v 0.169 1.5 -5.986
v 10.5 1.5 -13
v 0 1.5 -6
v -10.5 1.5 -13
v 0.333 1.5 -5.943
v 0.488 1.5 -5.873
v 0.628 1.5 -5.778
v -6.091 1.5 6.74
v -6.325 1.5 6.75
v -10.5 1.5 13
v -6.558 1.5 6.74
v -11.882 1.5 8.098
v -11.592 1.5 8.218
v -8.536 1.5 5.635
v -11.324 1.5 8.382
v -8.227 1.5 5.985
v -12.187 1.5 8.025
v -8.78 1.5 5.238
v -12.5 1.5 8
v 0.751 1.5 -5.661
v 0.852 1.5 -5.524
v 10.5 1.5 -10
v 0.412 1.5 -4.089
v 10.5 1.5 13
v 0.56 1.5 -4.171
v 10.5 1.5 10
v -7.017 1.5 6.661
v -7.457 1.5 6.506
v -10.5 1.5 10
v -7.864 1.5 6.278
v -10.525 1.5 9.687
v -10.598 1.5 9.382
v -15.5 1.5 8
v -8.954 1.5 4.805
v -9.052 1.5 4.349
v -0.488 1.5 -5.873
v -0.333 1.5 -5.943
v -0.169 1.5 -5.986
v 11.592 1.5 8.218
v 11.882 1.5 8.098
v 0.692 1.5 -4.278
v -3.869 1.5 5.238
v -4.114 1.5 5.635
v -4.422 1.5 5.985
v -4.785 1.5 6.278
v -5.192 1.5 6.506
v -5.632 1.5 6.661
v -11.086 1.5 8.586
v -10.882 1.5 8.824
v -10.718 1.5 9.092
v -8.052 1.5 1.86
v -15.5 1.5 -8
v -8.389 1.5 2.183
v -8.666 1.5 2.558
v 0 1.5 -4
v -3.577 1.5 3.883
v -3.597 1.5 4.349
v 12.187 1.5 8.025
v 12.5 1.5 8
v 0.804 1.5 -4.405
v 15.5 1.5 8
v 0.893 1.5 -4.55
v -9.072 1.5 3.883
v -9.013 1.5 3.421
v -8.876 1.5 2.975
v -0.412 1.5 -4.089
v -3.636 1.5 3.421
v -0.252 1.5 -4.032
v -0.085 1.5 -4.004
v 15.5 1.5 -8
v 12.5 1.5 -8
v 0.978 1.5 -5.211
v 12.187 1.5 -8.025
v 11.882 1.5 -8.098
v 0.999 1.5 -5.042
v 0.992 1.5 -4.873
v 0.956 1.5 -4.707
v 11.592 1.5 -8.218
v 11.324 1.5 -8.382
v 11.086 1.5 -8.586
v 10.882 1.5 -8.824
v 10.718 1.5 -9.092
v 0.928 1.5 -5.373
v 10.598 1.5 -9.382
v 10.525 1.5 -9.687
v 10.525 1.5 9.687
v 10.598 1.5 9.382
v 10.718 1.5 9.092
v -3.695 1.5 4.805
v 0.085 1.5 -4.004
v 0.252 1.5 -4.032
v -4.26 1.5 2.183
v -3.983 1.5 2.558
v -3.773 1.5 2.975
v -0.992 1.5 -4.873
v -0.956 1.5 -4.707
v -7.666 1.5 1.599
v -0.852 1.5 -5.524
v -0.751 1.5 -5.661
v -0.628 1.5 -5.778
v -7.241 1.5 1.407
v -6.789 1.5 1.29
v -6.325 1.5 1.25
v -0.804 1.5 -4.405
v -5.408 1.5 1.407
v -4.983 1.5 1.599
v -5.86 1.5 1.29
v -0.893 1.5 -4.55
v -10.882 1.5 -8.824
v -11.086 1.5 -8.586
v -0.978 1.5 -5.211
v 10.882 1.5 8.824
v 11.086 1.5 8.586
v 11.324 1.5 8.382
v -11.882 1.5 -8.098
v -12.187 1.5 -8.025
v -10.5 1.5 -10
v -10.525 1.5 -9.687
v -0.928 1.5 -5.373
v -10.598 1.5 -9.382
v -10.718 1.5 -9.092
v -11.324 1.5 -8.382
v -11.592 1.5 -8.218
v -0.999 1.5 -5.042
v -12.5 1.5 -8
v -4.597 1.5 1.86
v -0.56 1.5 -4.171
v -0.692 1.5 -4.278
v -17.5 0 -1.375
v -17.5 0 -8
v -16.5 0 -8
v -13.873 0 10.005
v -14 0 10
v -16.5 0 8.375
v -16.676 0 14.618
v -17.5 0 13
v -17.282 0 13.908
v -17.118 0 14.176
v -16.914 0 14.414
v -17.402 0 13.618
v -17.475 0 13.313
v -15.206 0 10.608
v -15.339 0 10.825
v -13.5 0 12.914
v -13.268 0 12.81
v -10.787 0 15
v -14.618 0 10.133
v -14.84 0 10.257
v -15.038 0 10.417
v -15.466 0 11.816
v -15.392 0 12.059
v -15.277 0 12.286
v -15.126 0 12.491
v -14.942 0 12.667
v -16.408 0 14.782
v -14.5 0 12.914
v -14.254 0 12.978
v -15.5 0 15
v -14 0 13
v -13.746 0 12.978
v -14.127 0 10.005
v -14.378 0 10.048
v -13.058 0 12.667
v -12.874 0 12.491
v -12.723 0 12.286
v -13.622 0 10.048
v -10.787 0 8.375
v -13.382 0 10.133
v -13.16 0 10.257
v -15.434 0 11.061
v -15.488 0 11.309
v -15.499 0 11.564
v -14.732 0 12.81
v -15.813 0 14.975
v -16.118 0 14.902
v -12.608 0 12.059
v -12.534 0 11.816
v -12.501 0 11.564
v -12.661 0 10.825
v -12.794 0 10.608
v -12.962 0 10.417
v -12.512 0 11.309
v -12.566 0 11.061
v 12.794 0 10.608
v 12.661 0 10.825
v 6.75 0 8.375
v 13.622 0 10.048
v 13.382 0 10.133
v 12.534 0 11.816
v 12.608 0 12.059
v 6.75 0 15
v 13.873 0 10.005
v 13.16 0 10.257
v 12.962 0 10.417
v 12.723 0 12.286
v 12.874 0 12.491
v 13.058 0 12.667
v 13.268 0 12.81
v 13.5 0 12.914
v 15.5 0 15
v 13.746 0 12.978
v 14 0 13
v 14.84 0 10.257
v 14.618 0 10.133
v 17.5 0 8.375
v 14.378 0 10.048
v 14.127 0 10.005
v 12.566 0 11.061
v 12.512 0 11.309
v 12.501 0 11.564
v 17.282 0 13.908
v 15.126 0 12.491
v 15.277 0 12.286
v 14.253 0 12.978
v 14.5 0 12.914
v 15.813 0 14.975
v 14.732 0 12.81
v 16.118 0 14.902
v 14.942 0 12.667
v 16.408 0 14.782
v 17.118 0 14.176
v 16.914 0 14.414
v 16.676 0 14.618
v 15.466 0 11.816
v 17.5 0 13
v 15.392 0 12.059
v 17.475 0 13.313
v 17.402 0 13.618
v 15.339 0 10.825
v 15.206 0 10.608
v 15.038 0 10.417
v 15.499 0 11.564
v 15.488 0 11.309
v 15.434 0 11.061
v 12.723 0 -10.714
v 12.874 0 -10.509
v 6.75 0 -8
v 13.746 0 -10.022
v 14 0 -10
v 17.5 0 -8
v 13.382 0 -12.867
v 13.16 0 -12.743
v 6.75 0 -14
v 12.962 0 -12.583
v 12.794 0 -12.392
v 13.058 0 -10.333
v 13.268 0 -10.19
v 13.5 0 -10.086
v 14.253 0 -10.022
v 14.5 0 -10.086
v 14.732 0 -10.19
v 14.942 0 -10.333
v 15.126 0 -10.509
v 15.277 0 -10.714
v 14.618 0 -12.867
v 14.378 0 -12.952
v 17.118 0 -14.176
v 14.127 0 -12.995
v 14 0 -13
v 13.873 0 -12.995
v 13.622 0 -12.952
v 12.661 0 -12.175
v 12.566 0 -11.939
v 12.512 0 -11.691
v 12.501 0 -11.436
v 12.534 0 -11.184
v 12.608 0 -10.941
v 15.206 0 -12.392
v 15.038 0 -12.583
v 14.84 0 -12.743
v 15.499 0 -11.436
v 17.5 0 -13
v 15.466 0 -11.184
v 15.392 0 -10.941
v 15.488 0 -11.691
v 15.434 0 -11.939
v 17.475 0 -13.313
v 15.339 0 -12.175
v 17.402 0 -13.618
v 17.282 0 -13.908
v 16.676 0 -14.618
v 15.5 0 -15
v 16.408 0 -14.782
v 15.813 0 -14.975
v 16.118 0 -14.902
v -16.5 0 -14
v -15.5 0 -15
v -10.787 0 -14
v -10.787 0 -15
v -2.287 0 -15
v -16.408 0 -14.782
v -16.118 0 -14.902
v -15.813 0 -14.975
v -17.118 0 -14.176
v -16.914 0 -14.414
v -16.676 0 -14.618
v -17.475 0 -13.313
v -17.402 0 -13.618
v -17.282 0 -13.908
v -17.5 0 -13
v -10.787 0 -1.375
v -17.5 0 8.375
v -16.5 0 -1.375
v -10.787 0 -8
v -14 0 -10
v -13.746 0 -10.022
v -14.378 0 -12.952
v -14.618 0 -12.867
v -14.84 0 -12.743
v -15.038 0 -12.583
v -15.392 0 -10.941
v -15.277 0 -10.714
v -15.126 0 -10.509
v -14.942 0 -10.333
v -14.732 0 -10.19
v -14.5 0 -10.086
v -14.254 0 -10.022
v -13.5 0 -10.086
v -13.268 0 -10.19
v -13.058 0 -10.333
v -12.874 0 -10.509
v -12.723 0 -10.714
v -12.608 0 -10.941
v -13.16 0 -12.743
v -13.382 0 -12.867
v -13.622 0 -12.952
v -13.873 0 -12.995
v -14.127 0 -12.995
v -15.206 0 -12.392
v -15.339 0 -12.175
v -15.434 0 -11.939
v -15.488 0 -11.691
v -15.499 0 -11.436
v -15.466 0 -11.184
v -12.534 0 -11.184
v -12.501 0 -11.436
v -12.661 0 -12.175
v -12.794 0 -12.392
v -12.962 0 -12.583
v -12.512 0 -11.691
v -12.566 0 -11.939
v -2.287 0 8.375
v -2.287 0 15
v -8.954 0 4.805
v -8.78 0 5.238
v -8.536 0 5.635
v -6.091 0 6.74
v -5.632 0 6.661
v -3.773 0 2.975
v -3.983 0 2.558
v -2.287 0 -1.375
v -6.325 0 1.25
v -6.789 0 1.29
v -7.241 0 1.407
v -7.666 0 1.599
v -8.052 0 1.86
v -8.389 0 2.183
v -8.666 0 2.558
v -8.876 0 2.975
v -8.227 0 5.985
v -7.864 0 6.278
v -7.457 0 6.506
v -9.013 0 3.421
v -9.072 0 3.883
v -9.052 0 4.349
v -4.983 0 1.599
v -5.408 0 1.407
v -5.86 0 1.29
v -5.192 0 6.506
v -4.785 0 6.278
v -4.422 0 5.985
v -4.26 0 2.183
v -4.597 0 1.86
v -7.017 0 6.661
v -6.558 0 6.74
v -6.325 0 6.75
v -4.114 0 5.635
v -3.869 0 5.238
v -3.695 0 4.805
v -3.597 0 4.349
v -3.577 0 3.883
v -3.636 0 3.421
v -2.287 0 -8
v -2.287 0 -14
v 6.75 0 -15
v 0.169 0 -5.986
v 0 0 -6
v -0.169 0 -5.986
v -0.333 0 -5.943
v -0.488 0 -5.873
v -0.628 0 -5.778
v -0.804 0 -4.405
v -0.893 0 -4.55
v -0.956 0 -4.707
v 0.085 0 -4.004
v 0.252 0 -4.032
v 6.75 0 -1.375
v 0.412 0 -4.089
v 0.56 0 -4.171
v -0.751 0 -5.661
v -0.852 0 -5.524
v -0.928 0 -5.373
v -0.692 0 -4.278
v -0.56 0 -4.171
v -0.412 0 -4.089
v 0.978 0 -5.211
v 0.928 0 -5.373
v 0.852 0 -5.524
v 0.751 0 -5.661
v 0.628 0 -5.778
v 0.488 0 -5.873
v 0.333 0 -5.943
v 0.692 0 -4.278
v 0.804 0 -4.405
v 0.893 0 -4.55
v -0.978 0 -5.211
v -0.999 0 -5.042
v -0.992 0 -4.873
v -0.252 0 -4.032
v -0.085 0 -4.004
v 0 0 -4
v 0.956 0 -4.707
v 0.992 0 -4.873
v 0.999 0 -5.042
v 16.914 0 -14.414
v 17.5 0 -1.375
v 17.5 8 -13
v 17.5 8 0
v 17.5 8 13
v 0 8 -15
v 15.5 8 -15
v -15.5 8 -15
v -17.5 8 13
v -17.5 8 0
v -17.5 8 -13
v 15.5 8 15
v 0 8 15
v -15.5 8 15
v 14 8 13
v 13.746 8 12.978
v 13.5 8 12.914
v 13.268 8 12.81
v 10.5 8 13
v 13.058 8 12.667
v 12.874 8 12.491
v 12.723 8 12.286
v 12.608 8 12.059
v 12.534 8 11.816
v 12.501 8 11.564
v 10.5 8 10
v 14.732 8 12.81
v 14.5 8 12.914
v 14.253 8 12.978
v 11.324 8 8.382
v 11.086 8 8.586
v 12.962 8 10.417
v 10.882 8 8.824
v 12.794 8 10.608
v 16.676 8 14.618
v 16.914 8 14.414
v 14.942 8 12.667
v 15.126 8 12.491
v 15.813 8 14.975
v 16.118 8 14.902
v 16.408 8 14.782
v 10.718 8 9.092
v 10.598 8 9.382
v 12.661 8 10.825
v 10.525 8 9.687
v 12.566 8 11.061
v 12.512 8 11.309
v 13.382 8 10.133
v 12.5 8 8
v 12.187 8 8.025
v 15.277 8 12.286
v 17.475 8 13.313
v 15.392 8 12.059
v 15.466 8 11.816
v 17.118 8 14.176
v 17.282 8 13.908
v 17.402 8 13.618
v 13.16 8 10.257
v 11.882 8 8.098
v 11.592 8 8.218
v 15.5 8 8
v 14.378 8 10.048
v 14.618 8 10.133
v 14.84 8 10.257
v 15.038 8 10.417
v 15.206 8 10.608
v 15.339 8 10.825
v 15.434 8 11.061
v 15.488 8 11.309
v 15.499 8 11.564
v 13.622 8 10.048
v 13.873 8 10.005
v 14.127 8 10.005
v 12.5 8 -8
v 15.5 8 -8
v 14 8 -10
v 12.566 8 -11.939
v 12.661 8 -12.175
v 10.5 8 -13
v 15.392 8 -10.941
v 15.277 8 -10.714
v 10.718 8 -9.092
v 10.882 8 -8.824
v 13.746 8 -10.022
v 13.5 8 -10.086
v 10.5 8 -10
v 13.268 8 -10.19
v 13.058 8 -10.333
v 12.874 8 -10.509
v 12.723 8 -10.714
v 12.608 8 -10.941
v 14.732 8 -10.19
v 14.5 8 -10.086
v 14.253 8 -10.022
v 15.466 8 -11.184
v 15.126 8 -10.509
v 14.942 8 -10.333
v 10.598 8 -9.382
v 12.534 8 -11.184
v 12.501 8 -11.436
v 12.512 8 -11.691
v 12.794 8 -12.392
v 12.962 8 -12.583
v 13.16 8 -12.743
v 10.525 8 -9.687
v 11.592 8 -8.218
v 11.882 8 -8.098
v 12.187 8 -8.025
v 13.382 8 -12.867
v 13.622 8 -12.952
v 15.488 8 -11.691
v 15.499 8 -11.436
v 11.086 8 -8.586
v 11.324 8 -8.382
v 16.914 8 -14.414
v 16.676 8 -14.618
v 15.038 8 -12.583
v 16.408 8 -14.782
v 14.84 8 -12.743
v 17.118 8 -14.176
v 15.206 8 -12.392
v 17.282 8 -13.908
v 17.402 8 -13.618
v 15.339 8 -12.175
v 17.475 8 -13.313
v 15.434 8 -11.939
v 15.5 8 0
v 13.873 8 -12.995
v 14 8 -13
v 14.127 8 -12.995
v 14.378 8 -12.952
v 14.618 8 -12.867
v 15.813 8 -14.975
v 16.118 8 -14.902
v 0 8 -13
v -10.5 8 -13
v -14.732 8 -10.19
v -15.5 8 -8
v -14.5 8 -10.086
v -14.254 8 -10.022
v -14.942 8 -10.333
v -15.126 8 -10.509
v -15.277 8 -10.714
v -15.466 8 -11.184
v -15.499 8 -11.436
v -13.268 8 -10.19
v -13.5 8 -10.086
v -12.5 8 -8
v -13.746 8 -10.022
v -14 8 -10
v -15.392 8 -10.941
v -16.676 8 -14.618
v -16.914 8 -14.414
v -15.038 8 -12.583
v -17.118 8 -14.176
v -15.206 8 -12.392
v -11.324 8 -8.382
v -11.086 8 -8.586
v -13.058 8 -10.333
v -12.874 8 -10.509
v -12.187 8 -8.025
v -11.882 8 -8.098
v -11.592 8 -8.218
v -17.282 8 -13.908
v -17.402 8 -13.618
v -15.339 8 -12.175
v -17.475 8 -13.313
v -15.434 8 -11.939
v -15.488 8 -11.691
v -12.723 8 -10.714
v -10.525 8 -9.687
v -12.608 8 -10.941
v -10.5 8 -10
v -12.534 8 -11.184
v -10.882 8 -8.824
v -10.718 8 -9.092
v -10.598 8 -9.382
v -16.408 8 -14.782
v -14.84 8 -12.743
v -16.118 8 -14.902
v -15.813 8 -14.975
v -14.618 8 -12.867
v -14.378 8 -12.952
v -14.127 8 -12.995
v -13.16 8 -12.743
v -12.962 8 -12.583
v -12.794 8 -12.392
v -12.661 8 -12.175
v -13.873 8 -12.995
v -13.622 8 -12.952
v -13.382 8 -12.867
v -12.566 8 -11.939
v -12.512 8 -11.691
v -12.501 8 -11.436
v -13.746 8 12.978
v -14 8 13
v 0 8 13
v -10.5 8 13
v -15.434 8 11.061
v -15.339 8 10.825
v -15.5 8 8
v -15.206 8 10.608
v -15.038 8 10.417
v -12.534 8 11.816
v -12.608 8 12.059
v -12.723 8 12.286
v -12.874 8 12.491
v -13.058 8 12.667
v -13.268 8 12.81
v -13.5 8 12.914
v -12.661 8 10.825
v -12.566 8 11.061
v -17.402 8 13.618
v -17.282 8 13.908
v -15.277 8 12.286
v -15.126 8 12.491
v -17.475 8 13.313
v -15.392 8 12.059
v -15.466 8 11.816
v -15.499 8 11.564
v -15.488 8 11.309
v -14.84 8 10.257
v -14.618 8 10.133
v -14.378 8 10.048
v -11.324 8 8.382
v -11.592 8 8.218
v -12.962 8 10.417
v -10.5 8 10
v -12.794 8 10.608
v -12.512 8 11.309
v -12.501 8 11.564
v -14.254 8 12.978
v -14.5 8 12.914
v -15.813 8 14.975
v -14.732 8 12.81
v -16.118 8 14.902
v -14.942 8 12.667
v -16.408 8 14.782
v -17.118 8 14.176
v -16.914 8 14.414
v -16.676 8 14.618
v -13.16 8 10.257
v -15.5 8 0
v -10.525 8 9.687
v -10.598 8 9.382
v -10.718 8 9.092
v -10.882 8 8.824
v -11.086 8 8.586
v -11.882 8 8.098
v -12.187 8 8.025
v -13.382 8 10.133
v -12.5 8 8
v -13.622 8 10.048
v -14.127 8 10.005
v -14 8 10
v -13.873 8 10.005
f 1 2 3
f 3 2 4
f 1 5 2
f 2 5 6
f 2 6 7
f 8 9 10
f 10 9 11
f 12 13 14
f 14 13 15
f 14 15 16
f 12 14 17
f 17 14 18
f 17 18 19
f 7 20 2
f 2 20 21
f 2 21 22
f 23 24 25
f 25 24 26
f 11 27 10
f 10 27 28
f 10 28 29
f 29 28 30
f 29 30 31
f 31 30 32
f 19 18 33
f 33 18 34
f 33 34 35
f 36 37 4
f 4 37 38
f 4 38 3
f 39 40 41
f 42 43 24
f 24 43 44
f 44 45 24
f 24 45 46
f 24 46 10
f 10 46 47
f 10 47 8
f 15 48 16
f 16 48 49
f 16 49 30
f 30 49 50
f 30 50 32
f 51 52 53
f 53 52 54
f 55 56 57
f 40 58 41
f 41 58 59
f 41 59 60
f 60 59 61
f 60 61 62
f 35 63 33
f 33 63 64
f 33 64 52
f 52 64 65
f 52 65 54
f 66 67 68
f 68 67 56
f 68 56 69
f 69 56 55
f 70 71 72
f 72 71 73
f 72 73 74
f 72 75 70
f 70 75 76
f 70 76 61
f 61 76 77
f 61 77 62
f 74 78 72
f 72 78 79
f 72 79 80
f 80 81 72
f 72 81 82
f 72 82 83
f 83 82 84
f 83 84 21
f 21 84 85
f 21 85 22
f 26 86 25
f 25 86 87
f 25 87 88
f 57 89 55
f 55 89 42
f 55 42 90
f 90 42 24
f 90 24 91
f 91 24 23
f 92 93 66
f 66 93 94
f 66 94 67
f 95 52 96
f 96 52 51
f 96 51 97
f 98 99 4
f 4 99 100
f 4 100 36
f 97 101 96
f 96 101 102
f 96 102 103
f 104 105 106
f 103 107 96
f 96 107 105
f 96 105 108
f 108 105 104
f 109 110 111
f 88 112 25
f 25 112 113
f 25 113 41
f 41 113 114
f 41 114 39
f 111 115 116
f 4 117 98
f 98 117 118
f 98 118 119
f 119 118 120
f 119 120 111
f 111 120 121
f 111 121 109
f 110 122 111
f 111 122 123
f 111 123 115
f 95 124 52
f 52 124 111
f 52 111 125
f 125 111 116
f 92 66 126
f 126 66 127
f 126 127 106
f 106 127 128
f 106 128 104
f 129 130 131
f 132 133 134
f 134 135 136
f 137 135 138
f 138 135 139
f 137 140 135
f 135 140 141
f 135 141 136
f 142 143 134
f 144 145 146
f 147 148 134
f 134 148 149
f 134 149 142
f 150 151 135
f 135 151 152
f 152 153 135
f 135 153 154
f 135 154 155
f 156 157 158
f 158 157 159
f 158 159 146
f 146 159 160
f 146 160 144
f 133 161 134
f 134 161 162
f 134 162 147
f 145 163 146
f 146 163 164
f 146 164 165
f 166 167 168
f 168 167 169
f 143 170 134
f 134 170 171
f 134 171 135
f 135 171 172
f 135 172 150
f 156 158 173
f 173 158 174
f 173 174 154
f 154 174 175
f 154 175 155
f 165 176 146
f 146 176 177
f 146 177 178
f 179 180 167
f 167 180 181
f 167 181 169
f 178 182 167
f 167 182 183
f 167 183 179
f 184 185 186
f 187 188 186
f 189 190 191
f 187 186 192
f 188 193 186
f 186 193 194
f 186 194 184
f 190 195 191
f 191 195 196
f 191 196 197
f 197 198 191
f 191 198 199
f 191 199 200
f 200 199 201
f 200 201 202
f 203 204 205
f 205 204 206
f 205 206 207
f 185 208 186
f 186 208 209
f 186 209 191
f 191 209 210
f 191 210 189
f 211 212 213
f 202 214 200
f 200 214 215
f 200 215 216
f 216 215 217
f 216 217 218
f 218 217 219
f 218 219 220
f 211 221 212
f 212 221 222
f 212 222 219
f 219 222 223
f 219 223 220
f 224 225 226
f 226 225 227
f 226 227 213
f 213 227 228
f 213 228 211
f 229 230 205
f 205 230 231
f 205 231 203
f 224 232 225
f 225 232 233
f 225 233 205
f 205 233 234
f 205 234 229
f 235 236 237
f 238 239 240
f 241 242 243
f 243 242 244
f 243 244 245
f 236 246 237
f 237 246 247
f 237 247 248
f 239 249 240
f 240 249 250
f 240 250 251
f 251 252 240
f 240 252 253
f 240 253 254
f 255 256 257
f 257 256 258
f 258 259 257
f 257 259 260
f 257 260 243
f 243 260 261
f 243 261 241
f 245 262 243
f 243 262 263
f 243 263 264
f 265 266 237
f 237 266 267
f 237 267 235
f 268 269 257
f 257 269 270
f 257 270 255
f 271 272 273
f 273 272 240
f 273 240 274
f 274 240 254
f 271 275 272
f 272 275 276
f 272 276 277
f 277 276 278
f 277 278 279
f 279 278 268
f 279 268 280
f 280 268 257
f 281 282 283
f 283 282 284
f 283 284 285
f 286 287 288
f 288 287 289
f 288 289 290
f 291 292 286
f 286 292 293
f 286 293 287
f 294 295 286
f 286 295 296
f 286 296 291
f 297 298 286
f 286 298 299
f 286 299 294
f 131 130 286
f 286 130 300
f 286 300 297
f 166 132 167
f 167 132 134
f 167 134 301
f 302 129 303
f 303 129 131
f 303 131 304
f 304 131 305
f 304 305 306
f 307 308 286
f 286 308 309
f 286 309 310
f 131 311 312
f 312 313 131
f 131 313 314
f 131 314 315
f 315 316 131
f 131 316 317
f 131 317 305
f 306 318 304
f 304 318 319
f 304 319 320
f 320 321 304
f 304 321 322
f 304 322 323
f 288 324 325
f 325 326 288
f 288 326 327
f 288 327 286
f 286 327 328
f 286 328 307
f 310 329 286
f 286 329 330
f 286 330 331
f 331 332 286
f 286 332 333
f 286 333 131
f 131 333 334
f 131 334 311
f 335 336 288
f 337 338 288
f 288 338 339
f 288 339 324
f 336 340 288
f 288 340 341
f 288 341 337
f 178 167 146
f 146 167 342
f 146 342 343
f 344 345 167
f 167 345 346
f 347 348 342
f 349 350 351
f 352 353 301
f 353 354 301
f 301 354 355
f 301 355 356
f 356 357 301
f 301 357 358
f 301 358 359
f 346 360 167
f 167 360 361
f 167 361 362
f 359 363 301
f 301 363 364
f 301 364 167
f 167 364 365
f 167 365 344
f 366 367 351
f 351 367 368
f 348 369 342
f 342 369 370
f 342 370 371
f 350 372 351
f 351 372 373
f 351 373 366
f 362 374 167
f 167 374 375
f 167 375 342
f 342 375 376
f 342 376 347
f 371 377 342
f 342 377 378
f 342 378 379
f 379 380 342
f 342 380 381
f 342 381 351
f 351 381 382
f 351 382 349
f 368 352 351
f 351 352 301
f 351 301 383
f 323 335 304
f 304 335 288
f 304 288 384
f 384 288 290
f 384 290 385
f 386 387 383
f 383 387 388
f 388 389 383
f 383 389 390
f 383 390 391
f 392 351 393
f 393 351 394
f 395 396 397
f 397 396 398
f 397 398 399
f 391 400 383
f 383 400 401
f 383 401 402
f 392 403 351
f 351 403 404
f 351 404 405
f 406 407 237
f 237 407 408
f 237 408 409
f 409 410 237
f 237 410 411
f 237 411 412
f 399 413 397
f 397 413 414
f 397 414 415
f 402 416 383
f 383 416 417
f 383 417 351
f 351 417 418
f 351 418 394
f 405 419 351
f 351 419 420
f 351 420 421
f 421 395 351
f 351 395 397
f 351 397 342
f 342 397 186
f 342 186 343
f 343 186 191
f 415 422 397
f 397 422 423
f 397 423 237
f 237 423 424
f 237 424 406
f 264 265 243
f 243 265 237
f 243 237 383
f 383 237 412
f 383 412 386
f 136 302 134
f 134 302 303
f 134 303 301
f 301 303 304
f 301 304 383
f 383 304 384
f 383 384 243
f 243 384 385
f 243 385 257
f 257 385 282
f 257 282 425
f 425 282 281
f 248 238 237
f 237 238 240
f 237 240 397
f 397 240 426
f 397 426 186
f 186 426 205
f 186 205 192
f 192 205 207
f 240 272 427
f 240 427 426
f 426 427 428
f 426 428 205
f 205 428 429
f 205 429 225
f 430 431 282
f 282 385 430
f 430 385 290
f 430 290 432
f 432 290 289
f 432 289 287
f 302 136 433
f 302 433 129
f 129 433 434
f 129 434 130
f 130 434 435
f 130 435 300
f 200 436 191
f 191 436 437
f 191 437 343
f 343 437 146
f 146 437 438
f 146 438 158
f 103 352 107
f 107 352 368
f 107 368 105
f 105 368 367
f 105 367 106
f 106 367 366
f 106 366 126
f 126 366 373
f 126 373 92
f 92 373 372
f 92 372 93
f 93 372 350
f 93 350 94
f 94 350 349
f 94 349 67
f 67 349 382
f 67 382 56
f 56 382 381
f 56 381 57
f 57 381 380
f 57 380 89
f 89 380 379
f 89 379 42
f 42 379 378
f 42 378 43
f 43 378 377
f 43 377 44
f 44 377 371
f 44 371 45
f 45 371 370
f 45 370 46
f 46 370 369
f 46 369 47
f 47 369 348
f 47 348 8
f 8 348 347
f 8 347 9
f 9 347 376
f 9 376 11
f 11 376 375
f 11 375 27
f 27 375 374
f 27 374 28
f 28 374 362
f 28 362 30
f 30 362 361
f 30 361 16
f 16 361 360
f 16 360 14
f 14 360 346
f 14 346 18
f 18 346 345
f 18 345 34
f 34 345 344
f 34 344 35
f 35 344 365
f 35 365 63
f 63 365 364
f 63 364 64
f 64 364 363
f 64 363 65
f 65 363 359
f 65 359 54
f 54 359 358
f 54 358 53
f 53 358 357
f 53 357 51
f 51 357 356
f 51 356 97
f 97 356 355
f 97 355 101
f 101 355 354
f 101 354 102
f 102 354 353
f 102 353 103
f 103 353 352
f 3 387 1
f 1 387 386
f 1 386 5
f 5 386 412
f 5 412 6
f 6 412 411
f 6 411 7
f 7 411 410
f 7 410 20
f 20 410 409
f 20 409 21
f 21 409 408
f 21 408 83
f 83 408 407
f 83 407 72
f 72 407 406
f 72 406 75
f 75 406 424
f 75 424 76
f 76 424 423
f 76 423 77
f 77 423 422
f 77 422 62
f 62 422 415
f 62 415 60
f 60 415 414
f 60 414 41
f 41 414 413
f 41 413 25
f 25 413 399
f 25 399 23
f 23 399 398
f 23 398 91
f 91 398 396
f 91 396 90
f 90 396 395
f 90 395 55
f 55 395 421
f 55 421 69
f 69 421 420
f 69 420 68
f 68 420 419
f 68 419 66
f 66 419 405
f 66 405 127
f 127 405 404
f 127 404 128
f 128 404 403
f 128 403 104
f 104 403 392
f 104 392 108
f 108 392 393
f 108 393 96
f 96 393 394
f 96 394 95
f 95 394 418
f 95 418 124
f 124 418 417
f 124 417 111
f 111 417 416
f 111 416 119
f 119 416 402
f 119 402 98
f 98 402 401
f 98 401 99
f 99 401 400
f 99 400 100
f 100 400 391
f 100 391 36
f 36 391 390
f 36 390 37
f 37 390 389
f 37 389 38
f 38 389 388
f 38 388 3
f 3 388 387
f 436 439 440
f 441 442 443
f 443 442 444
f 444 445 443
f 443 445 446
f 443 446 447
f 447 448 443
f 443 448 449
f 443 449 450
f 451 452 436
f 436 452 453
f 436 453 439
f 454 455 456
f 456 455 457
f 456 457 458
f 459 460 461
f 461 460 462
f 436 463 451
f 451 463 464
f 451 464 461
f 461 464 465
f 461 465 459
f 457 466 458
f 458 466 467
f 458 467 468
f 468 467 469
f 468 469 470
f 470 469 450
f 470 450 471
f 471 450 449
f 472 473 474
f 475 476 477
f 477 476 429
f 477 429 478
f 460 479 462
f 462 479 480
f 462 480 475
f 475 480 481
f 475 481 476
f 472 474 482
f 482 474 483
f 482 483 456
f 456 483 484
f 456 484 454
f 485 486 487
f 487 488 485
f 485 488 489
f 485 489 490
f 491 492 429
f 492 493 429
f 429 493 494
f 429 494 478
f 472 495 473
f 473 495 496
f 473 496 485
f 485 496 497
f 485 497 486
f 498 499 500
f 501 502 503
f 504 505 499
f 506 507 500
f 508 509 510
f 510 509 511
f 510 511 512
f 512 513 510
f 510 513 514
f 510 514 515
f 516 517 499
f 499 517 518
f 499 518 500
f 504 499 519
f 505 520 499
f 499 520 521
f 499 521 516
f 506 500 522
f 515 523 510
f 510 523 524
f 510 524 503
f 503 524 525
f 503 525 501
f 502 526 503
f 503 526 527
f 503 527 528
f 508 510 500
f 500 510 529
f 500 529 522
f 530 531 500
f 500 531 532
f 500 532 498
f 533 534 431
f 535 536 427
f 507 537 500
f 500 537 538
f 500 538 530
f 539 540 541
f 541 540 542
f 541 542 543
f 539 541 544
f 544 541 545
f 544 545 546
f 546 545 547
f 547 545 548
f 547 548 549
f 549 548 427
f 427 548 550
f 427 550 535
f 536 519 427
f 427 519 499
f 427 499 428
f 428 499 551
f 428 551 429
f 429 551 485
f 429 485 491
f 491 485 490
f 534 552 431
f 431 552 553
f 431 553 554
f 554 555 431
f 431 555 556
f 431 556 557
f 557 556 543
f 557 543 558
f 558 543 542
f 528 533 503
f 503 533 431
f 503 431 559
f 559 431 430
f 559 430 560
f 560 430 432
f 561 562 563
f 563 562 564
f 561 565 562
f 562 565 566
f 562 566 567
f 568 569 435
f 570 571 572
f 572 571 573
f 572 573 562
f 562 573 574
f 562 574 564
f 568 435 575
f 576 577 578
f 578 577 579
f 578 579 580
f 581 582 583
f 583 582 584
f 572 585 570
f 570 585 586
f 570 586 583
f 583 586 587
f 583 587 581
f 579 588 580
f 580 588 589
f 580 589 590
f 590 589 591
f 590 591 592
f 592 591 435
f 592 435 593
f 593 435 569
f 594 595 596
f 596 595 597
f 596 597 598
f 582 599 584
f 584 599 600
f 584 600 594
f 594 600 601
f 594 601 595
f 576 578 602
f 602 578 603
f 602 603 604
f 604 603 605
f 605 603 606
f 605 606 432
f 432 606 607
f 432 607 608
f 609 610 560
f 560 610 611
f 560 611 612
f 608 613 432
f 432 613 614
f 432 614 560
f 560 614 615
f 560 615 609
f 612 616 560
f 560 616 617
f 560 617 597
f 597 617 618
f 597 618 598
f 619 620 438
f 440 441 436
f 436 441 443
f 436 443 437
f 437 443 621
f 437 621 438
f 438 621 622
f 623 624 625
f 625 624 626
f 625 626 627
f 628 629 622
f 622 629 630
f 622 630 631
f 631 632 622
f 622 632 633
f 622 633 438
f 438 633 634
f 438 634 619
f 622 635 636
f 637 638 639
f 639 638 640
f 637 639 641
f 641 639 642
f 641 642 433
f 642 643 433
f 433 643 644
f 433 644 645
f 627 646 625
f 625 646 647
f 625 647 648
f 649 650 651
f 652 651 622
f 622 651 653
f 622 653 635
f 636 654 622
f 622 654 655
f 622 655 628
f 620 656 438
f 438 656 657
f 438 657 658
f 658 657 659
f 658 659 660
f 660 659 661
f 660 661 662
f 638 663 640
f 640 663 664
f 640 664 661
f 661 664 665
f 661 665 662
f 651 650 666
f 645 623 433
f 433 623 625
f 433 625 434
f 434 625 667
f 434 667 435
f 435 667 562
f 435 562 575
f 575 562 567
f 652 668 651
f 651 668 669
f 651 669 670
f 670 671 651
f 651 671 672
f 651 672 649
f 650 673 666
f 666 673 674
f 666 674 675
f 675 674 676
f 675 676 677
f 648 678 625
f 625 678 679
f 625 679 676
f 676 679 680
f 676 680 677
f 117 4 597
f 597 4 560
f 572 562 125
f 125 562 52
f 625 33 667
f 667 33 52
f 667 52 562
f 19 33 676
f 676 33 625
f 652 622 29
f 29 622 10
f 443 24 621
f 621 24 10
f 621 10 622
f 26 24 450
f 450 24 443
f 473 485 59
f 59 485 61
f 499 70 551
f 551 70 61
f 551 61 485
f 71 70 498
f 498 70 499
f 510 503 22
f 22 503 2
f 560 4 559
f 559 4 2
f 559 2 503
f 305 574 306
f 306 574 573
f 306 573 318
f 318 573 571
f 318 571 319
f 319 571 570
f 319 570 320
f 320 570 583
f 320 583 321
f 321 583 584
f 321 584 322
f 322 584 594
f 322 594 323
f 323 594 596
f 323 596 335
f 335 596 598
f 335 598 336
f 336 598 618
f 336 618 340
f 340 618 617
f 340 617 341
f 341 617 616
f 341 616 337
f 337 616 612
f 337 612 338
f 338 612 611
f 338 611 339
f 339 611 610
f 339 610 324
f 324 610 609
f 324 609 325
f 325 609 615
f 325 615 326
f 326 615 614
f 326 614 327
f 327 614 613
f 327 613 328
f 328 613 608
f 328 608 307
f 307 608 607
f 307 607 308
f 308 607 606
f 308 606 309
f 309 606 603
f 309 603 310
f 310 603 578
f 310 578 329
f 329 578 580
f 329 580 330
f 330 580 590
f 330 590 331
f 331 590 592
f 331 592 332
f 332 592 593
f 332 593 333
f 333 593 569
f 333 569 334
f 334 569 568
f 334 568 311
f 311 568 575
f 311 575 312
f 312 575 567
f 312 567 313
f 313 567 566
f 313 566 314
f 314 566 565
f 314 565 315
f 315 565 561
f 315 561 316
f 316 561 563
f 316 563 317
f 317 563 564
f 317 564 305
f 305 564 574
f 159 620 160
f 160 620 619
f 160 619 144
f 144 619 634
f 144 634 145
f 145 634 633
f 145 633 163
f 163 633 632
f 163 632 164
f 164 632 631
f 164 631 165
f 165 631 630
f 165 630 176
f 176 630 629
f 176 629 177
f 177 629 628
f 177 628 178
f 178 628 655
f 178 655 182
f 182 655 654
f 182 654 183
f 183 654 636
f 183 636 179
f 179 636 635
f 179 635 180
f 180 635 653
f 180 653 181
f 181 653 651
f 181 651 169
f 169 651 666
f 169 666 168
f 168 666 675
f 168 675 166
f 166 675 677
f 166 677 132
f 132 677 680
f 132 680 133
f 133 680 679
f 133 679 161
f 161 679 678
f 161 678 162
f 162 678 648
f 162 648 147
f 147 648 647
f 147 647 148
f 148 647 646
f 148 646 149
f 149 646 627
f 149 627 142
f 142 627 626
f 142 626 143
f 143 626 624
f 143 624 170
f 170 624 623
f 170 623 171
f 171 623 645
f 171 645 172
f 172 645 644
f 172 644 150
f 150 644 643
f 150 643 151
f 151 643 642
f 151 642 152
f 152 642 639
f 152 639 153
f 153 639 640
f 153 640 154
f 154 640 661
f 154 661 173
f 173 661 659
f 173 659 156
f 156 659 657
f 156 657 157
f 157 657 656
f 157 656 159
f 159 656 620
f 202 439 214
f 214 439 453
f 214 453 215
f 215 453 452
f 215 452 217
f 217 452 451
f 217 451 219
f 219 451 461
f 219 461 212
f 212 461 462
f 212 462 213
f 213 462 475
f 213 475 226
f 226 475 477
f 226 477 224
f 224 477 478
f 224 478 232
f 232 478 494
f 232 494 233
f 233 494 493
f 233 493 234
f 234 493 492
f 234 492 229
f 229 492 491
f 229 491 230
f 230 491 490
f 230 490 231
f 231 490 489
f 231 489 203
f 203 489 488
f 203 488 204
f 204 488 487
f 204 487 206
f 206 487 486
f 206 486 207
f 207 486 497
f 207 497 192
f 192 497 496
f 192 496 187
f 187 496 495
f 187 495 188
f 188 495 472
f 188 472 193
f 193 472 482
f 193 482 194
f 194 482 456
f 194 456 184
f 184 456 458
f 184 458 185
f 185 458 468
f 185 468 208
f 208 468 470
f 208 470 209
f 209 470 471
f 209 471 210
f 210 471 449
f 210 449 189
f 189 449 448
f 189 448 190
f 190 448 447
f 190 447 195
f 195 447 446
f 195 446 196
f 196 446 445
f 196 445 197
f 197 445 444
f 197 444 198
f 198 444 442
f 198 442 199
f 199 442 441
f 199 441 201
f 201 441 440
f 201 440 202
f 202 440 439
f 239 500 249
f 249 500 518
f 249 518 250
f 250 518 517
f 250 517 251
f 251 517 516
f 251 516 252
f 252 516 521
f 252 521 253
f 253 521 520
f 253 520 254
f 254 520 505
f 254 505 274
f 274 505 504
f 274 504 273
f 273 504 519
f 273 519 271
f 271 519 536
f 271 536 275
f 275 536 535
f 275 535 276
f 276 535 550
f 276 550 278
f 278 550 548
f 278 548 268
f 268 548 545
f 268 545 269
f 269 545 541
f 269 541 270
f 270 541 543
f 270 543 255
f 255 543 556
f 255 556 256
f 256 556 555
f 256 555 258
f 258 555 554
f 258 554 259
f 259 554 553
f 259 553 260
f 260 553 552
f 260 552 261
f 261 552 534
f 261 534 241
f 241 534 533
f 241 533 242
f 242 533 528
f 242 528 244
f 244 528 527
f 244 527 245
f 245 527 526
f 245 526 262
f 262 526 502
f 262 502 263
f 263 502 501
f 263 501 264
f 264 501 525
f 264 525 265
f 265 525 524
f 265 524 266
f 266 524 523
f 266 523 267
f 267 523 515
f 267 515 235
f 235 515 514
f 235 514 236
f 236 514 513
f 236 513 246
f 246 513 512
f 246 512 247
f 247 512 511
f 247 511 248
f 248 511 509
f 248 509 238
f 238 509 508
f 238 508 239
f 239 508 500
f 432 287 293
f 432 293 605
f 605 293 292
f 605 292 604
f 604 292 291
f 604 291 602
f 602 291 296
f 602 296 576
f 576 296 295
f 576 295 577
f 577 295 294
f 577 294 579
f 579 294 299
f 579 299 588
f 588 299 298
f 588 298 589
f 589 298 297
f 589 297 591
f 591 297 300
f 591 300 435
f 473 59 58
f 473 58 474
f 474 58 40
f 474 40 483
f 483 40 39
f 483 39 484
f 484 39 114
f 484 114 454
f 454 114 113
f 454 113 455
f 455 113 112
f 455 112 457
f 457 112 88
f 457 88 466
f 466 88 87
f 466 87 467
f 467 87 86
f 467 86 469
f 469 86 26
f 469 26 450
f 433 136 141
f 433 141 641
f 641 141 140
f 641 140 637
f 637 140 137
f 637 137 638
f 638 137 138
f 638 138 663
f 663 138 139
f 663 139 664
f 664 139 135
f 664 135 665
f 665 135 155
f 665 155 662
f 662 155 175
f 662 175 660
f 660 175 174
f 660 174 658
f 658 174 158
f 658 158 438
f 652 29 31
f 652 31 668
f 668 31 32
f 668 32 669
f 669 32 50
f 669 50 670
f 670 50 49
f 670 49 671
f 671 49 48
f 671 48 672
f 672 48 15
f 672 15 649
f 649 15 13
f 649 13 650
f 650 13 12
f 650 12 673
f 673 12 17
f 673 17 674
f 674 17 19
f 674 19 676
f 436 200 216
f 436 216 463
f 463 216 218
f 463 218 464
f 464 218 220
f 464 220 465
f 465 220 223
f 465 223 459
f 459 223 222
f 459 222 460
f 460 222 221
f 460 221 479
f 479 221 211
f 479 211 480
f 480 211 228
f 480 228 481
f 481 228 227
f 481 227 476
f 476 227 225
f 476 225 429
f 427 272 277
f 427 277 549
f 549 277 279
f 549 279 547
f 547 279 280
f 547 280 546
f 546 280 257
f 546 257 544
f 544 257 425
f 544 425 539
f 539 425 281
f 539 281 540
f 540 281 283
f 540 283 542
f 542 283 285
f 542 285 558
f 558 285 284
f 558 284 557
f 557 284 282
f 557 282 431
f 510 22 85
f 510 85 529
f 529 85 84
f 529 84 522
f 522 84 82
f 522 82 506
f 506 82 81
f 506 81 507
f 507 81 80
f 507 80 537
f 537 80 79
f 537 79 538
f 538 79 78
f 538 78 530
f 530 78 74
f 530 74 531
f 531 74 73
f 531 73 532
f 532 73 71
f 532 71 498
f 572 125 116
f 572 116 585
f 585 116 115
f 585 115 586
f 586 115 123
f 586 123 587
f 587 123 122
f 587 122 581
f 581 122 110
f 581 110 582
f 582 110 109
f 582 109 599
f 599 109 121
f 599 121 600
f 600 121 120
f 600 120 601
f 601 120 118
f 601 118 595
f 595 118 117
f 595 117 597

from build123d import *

# Parameters (mm, degrees)
SKETCH1_W           = 35
SKETCH1_H           = 30
SKETCH1_R           = 2.75
SKETCH1_R_2         = 1
BOSS_EXTRUDE1_DEPTH = 1.5
SKETCH2_W           = 35
SKETCH2_H           = 30
BOSS_EXTRUDE2_DEPTH = 6.5
SKETCH3_R           = 1.5
CUT_EXTRUDE1_DEPTH  = 9
FILLET1_R           = 2


with BuildPart() as part:
    # Sketch1 → Boss-Extrude1 (new body)
    with BuildSketch(Plane(origin=(0, 0, 0), x_dir=(1, 0, 0), z_dir=(0, 1, 0))):
        Rectangle(SKETCH1_W, SKETCH1_H)
        with Locations((-6.32455, -4)):
            Circle(SKETCH1_R, mode=Mode.SUBTRACT)
        with Locations((0, 5)):
            Circle(SKETCH1_R_2, mode=Mode.SUBTRACT)
    extrude(amount=BOSS_EXTRUDE1_DEPTH)

    # Sketch2 → Boss-Extrude2 (add)
    with BuildSketch(Plane(origin=(0, 1.5, 0), x_dir=(1, 0, 0), z_dir=(0, 1, 0))):
        Rectangle(SKETCH2_W, SKETCH2_H)
        Polygon((-10.5, 13), (10.5, 13), (10.5, 8), (15.5, 8), (15.5, -8), (10.5, -8), (10.5, -13), (-10.5, -13), (-10.5, -8), (-15.5, -8), (-15.5, 8), (-10.5, 8), align=None, mode=Mode.SUBTRACT)
    extrude(amount=BOSS_EXTRUDE2_DEPTH)

    # Sketch3 → Cut-Extrude1 (cut, through all)
    with BuildSketch(Plane(origin=(0, 8, 0), x_dir=(1, 0, 0), z_dir=(0, 1, 0))):
        with Locations((-14, 11.5)):
            Circle(SKETCH3_R)
        with Locations((-14, -11.5)):
            Circle(SKETCH3_R)
        with Locations((14, -11.5)):
            Circle(SKETCH3_R)
        with Locations((14, 11.5)):
            Circle(SKETCH3_R)
    extrude(amount=-CUT_EXTRUDE1_DEPTH, mode=Mode.SUBTRACT)

    # Fillet1
    fillet1_edges = [part.edges().sort_by_distance(p)[0] for p in [
        (-10.5, 4.75, -8),
        (-10.5, 4.75, 8),
        (10.5, 4.75, 8),
        (10.5, 4.75, -8),
        (17.5, 4, 15),
        (-17.5, 4, 15),
        (-17.5, 4, -15),
        (17.5, 4, -15),
    ]]
    fillet(fillet1_edges, radius=FILLET1_R)


solid = part.part
